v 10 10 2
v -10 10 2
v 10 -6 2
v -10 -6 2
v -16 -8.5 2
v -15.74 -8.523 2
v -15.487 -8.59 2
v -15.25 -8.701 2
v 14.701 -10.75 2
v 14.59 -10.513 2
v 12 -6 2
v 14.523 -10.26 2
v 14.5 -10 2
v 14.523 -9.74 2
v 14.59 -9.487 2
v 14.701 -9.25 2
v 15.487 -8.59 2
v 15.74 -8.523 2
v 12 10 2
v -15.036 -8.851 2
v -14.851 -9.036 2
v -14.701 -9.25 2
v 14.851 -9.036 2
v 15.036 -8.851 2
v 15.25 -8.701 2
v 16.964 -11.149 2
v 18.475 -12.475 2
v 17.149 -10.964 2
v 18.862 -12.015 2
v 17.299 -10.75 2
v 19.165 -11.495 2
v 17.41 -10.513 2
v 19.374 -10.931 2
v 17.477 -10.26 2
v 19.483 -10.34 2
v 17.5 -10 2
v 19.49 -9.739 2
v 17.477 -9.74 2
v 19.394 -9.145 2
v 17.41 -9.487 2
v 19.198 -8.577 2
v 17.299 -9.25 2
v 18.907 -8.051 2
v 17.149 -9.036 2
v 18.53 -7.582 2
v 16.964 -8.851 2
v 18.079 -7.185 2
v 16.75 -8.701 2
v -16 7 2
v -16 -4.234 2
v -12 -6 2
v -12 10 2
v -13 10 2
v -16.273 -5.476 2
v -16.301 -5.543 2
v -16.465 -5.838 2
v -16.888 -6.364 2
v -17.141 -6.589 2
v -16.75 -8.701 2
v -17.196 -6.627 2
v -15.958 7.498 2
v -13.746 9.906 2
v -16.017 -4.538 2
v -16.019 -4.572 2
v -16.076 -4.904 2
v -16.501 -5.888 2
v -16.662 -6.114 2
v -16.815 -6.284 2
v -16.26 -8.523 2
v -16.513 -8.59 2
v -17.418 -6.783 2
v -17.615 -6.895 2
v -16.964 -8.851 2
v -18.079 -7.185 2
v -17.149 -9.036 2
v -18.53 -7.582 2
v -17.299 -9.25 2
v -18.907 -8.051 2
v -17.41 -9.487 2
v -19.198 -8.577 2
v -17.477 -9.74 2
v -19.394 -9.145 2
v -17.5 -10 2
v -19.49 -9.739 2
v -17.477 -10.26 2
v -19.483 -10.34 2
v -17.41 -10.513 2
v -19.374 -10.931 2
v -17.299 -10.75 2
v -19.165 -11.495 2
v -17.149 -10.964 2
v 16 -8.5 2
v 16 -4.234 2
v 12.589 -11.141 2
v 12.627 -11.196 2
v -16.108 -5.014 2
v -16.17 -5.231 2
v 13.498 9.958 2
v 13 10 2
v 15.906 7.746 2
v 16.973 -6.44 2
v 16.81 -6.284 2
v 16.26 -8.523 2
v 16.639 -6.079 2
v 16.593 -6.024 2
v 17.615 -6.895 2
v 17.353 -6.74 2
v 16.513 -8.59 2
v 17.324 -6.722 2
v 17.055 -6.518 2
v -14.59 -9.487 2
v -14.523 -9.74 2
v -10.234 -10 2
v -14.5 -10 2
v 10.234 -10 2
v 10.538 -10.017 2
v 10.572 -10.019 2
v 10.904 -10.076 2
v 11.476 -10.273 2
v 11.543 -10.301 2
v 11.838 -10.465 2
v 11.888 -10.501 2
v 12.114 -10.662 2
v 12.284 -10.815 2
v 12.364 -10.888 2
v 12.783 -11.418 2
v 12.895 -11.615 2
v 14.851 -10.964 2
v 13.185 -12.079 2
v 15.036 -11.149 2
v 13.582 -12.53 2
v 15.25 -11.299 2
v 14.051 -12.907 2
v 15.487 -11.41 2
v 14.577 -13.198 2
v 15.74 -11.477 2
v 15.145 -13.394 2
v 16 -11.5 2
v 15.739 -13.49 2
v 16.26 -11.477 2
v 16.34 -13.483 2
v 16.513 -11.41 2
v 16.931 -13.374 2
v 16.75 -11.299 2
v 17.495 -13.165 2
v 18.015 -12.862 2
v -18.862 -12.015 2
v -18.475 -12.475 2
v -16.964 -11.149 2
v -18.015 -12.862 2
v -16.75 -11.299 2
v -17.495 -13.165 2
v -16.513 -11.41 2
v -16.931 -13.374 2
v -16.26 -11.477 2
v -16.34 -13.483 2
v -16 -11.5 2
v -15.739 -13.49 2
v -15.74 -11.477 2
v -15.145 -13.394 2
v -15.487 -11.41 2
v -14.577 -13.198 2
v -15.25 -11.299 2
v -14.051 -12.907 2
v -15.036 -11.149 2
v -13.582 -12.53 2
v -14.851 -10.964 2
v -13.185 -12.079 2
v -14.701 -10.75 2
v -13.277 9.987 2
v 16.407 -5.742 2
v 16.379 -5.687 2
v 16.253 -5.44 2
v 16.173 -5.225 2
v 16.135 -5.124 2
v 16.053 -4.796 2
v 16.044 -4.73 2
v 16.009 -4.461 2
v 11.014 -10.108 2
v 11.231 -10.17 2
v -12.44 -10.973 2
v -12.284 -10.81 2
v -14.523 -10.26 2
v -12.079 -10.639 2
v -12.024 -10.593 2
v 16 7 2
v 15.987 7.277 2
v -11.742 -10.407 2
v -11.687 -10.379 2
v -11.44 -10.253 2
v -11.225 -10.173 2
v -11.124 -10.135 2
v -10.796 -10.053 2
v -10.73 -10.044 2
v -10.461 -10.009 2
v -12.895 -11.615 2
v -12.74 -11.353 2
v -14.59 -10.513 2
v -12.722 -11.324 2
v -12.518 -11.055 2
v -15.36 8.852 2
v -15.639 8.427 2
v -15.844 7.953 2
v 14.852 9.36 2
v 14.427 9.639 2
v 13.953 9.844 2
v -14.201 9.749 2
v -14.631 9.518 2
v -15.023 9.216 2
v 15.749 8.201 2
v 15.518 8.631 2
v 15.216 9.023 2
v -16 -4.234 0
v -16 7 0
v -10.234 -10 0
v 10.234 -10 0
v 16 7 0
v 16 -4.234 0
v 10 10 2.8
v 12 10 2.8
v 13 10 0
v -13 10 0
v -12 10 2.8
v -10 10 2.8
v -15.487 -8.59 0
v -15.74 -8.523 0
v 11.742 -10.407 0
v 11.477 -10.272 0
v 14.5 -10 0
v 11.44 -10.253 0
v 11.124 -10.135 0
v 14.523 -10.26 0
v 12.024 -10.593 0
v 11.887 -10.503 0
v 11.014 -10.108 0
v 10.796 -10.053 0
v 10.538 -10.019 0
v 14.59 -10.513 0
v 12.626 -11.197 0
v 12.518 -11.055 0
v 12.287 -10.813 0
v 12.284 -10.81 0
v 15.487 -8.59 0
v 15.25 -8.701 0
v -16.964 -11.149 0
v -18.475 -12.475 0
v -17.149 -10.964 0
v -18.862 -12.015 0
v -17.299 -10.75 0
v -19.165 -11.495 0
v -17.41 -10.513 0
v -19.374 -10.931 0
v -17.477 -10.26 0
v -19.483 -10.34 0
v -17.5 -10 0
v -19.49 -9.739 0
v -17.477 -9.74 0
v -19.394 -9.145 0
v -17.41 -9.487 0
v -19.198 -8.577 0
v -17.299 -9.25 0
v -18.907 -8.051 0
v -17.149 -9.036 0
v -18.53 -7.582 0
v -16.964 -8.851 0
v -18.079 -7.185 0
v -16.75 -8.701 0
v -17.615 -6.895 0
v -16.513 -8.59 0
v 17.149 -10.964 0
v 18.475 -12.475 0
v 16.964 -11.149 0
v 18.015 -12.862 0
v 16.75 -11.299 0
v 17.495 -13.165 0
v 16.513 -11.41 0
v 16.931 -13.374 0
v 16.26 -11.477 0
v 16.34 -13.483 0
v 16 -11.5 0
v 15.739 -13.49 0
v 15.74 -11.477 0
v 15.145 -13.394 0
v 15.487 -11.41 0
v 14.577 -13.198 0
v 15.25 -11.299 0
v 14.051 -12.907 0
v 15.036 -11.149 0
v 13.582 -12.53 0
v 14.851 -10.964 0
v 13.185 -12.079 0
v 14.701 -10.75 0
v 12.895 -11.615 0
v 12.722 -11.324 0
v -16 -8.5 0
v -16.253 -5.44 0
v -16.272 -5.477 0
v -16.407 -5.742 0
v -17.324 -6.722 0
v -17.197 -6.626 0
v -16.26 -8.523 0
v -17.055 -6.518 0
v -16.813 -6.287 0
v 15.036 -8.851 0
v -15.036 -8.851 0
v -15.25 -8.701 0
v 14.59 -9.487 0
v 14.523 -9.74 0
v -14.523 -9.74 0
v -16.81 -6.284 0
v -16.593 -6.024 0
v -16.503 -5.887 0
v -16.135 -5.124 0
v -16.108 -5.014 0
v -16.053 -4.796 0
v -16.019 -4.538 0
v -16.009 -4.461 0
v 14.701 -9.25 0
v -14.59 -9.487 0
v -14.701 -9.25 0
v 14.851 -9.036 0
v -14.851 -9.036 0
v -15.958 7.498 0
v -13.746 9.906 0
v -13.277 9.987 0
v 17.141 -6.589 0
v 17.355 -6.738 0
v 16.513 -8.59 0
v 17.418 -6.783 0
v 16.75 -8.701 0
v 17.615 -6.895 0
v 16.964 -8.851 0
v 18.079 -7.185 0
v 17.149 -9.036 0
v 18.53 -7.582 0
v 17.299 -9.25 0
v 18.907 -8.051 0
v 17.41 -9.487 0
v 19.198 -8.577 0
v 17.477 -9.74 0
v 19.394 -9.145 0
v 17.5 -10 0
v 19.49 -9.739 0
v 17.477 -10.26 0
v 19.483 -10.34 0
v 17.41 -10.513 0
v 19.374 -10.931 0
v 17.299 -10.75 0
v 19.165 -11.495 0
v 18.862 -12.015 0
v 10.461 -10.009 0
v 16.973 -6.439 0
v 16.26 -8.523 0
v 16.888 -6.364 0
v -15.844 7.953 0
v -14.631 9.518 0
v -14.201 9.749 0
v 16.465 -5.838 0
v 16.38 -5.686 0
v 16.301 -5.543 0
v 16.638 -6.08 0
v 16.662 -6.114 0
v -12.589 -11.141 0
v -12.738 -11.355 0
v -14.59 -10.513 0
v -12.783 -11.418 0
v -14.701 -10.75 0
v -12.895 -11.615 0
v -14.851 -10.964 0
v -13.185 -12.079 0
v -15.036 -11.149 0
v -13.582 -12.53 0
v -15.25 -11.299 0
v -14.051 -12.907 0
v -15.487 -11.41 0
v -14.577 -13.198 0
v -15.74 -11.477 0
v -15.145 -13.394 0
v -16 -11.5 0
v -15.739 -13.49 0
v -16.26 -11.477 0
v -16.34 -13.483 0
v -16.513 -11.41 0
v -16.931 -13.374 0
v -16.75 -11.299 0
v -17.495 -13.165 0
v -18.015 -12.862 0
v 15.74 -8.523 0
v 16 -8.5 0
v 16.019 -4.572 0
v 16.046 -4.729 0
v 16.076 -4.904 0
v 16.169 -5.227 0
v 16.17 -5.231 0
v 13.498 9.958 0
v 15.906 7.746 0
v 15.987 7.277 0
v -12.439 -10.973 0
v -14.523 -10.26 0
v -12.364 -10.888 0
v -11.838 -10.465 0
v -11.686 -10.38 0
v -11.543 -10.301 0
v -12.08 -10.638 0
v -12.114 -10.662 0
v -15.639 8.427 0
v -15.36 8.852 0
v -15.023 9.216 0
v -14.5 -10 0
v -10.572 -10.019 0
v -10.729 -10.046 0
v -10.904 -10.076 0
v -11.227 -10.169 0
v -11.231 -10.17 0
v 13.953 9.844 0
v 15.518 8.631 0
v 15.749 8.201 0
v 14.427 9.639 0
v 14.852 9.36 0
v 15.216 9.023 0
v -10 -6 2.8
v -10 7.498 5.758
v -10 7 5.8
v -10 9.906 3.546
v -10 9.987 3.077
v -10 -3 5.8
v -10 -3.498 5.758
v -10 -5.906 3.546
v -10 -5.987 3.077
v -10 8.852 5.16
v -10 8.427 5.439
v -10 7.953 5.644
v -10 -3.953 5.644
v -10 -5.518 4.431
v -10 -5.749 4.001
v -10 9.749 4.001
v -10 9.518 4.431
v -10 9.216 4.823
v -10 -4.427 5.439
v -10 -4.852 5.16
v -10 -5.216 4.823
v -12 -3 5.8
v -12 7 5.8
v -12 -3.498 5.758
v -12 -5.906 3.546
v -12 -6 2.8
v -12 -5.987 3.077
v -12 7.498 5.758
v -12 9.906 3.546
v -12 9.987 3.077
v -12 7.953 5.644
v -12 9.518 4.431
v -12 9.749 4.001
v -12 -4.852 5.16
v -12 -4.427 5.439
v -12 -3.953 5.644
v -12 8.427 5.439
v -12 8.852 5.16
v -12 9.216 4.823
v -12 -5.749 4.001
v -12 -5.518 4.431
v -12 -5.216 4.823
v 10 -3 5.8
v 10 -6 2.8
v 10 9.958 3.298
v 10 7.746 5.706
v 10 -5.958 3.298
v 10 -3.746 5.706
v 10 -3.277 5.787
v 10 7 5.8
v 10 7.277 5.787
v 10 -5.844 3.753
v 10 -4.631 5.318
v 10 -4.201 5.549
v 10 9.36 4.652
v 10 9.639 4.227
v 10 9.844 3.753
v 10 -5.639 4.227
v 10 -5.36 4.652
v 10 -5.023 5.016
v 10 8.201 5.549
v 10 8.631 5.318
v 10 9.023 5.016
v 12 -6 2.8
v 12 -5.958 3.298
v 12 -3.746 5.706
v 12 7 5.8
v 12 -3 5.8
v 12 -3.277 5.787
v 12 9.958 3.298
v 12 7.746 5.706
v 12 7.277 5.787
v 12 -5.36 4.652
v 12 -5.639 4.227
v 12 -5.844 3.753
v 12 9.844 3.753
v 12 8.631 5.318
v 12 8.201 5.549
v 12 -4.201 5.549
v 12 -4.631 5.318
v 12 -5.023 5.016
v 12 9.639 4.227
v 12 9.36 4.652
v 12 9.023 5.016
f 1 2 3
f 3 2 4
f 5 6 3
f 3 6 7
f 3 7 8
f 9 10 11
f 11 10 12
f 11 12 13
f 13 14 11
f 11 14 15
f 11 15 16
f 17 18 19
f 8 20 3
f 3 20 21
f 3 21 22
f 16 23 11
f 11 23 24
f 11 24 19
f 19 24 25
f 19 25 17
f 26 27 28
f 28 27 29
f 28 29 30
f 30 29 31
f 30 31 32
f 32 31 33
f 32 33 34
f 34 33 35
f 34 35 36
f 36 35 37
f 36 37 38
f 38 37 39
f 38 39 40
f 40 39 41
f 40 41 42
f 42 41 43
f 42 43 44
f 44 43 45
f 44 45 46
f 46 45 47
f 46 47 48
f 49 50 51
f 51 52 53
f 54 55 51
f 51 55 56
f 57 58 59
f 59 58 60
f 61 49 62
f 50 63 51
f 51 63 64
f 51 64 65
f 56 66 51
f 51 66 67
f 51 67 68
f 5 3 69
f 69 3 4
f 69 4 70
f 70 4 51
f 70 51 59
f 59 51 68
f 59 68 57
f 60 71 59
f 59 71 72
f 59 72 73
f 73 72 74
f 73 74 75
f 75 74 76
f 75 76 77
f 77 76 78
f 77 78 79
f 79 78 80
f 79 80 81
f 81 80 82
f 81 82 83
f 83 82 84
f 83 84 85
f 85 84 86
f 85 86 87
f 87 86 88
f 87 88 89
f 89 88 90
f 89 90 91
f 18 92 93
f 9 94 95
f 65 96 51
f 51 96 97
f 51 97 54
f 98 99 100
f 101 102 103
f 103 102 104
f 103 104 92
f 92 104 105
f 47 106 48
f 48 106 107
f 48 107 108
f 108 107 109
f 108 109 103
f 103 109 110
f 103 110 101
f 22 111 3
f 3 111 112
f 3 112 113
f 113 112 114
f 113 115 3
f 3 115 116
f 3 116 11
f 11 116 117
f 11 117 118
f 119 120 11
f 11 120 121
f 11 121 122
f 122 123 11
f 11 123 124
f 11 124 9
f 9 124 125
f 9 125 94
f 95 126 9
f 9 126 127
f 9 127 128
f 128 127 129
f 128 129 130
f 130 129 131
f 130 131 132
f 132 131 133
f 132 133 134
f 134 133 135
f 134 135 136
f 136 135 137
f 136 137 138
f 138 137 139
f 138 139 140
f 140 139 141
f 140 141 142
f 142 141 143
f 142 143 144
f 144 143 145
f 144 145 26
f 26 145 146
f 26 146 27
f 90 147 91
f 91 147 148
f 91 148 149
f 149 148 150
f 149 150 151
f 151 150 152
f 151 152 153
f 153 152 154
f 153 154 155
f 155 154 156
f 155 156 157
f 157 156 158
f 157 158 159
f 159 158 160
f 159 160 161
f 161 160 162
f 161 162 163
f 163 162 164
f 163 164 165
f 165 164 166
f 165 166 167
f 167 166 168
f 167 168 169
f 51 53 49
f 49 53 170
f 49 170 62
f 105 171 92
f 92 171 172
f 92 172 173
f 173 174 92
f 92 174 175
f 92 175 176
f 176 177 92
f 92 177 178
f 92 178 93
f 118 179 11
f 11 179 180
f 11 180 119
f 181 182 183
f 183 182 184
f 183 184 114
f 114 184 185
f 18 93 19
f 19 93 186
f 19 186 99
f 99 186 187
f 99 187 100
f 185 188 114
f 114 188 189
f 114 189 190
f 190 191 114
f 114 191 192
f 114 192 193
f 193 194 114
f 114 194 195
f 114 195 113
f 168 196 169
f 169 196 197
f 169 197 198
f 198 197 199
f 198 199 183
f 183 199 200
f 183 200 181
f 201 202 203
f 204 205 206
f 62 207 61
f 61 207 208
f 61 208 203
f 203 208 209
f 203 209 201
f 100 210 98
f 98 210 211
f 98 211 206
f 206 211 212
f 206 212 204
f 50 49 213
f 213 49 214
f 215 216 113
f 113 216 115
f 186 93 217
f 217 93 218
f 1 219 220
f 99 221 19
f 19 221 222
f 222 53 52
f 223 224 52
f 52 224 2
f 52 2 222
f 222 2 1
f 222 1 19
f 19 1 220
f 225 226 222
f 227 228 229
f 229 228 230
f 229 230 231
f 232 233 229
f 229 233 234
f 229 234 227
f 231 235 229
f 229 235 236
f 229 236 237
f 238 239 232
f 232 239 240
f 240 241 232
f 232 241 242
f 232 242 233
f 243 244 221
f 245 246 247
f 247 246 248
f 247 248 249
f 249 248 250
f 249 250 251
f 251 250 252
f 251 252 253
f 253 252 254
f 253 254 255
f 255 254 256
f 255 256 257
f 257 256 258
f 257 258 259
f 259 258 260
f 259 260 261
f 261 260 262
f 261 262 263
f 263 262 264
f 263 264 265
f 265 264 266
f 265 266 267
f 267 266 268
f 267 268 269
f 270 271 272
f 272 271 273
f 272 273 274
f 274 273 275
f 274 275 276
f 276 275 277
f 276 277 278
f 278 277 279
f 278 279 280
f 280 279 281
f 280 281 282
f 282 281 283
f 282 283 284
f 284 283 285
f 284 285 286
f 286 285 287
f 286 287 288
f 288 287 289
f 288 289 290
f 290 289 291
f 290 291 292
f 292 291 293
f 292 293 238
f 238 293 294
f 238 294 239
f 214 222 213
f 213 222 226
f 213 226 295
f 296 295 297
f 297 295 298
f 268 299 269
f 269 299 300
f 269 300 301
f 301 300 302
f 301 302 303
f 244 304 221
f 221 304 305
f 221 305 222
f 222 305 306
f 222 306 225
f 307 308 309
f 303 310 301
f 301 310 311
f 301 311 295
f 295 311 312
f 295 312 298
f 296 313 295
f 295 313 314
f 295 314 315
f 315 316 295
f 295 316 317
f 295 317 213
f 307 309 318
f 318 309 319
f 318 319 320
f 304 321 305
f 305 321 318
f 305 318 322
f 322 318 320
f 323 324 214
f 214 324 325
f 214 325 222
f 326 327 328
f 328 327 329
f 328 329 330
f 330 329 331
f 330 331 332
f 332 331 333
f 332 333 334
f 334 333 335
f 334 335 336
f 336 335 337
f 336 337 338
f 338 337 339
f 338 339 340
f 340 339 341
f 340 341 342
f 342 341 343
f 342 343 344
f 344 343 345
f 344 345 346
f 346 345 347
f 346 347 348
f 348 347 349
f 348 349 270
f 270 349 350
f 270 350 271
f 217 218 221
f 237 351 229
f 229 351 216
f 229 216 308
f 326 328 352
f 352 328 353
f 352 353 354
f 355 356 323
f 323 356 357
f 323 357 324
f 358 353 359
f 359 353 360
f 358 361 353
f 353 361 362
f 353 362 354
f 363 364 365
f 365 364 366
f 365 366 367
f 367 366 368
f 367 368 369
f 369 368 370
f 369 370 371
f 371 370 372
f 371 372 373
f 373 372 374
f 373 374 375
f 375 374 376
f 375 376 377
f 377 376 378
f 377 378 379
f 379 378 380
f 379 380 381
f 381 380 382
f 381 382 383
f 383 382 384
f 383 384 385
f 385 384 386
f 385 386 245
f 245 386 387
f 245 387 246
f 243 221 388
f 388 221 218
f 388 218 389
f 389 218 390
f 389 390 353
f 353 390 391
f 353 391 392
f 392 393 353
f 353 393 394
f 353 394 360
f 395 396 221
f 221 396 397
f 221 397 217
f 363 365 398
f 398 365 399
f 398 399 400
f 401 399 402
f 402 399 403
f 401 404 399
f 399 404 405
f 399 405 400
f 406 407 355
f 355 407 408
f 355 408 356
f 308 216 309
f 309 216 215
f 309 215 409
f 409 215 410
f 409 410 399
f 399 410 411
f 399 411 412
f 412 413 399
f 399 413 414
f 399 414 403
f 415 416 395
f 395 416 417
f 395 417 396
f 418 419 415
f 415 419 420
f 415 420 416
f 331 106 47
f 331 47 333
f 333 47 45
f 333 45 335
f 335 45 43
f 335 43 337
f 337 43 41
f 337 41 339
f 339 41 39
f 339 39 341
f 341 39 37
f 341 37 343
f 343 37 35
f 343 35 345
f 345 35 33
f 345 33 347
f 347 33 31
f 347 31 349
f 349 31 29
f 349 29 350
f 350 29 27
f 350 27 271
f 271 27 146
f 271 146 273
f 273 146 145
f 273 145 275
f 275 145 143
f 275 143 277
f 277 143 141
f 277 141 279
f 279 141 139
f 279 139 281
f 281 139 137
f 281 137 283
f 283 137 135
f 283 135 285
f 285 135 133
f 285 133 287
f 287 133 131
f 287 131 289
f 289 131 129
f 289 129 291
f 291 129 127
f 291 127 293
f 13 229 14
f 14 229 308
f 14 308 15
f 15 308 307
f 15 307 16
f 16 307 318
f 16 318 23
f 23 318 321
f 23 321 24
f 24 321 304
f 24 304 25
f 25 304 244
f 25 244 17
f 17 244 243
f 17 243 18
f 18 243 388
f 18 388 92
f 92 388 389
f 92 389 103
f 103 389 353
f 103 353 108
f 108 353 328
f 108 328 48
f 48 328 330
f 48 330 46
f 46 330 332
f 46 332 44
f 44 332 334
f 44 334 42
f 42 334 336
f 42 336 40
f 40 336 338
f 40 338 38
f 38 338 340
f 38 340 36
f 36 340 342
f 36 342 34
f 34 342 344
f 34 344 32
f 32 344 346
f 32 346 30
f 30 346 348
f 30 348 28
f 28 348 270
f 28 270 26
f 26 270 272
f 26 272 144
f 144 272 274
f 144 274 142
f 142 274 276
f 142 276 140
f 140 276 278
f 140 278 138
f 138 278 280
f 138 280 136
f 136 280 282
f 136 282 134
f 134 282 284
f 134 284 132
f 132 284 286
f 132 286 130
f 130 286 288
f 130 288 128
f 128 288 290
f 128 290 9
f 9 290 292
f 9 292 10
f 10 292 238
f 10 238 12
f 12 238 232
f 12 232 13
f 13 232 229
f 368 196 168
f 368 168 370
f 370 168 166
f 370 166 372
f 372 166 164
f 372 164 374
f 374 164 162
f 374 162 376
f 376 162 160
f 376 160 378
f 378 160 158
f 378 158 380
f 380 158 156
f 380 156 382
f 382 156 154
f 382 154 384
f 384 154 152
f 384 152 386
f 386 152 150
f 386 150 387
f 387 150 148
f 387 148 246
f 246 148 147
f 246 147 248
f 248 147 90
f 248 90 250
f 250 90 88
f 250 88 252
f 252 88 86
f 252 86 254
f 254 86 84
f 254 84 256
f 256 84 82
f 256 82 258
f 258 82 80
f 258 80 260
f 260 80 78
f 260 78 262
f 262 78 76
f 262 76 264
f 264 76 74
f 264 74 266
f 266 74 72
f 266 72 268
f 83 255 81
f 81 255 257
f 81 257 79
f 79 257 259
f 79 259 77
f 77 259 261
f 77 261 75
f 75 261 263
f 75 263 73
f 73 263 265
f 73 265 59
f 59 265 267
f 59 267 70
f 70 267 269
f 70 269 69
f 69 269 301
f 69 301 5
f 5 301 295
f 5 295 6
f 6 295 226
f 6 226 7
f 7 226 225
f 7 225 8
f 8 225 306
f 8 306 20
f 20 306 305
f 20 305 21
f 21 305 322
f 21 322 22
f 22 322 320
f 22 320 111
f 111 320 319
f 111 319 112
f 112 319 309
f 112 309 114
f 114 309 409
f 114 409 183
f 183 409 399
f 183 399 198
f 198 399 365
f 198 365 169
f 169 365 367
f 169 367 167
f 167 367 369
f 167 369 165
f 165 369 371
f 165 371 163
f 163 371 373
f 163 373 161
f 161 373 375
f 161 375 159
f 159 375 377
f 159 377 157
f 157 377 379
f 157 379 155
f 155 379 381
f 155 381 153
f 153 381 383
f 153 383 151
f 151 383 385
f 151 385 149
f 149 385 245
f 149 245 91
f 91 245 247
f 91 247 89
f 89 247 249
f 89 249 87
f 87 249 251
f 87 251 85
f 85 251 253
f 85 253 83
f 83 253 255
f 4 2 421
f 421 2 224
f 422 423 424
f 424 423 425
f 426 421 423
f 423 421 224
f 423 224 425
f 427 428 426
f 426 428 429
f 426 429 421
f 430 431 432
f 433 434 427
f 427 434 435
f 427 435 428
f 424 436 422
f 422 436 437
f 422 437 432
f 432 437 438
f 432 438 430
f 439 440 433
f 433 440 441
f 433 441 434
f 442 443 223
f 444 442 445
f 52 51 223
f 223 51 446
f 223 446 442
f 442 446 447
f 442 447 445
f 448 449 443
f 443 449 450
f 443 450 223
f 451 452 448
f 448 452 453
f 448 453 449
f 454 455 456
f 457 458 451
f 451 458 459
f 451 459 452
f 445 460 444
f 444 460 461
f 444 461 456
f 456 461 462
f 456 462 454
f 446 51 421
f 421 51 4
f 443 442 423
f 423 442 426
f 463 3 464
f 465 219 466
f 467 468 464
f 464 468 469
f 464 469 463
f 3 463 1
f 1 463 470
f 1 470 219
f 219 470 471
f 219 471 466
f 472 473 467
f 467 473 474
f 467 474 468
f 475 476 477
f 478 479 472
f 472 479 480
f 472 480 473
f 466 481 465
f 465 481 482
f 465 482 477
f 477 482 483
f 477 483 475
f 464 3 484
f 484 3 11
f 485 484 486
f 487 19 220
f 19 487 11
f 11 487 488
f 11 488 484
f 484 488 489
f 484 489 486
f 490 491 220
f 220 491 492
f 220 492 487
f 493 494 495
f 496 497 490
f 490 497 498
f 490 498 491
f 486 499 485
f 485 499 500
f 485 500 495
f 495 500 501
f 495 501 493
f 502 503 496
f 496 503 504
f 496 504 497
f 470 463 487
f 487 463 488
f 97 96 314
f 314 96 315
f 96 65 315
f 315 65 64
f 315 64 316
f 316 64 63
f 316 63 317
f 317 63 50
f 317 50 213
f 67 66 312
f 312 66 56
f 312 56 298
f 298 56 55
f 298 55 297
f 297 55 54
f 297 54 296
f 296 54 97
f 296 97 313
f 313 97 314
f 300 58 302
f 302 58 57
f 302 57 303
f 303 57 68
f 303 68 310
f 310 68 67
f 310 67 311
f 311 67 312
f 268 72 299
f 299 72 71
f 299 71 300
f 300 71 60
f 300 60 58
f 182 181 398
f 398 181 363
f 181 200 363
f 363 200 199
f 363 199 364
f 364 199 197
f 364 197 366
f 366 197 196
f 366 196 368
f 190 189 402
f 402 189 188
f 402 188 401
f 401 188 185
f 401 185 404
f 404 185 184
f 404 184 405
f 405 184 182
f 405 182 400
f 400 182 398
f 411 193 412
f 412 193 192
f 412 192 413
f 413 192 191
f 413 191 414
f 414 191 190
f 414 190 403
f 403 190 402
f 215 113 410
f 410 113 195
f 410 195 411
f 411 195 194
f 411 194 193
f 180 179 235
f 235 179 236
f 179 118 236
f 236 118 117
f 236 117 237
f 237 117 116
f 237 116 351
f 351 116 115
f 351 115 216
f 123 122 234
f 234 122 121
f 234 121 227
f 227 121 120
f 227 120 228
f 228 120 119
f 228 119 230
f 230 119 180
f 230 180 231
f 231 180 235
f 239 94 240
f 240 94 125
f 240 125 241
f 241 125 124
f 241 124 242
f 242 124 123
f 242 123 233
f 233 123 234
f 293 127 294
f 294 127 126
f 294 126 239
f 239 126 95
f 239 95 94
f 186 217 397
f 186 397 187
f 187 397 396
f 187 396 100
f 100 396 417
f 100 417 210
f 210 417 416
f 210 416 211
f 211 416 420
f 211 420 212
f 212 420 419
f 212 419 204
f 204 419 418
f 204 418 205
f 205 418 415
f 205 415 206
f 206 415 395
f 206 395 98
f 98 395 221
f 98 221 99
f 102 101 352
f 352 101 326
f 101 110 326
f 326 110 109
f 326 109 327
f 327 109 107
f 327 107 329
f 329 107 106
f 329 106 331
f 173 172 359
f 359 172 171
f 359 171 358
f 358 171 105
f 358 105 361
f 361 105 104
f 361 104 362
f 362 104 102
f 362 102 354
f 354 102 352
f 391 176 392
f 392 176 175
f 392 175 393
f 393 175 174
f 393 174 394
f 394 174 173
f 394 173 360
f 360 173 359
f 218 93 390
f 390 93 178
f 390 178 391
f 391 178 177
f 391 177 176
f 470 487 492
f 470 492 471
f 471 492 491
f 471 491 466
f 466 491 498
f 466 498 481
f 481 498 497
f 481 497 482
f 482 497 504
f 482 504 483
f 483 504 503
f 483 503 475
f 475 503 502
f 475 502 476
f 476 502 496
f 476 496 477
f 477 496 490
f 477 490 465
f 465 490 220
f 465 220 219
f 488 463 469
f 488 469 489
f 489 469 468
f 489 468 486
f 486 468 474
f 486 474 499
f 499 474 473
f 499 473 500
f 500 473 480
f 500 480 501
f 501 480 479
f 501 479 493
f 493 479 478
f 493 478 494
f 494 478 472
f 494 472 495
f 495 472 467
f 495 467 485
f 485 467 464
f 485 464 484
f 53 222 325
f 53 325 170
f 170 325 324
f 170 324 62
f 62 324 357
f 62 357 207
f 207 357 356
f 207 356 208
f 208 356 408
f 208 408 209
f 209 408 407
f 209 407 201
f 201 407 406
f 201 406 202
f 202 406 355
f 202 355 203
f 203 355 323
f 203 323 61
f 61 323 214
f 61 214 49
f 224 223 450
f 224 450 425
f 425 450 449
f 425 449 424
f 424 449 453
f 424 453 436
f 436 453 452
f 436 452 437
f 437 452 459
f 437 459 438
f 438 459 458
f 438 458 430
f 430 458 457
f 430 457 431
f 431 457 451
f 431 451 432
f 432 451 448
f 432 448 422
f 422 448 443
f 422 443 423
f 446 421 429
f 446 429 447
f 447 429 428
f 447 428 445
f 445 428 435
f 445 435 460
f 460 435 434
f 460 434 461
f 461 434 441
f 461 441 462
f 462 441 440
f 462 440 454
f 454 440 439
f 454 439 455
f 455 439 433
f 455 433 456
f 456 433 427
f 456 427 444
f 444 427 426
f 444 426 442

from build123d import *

# Parameters (mm, degrees)
SKETCH_1_W            = 32
SKETCH_1_H            = 20
EXTRUDE_1_DEPTH       = 2
SKETCH_2_R            = 3.5
EXTRUDE_2_DEPTH       = 2
HOLE_WIZARD_3_0_3_1_D = 3
SKETCH_5_W            = 2
SKETCH_5_H            = 16
EXTRUDE_3_DEPTH       = 3.8
FILLET_1_DEPTH        = 2
FILLET_START          = -1
FILLET_1_2_DEPTH      = 6.8
FILLET_START_2        = -12
FILLET_1_3_DEPTH      = 24


with BuildPart() as part:
    # 草圖1 → 填料-伸長1 (new body)
    with BuildSketch(Plane.XY):
        Rectangle(SKETCH_1_W, SKETCH_1_H)
    extrude(amount=EXTRUDE_1_DEPTH)

    # 草圖2 → 填料-伸長2 (add)
    with BuildSketch(Plane(origin=(0, 0, 0), x_dir=(-1, 0, 0), z_dir=(0, 0, -1))):
        with Locations((-16, -10)):
            Circle(SKETCH_2_R)
    extrude_2 = extrude(amount=-EXTRUDE_2_DEPTH)

    # Ø3.0 (3) 直徑孔1 (through all)
    with Locations(Plane(origin=(0, 0, 0), x_dir=(-1, 0, 0), z_dir=(0, 0, -1))):
        with Locations((-16, -10)):
            hole_wizard_3_0_3_1 = Hole(HOLE_WIZARD_3_0_3_1_D / 2)

    # 鏡射1: 填料-伸長2, Ø3.0 (3) 直徑孔1 across plane
    add(extrude_2.mirror(Plane(origin=(0, 0, 0), x_dir=(0, 0, 1), z_dir=(1, 0, 0))))
    add(hole_wizard_3_0_3_1.mirror(Plane(origin=(0, 0, 0), x_dir=(0, 0, 1), z_dir=(1, 0, 0))), mode=Mode.SUBTRACT)

    # 草圖5 → 填料-伸長3 (add)
    with BuildSketch(Plane.XY.offset(2)):
        with Locations((-11, 2)):
            Rectangle(SKETCH_5_W, SKETCH_5_H)
    extrude_3 = extrude(amount=EXTRUDE_3_DEPTH)

    # 鏡射2: 填料-伸長3 across plane
    add(extrude_3.mirror(Plane(origin=(0, 0, 0), x_dir=(0, 0, 1), z_dir=(1, 0, 0))))

    # 圓角1: read off the stored shape, not the designer's step
    # 圓角1 outline → 圓角1 (add)
    with BuildSketch(Plane.XY):
        with BuildLine():
            add(Edge.make_bspline(
                [(-17.615384615, -6.895079301), (-16, -6.054649639), (-16, -4.233718703)],
                knots=[0, 0, 0, 1, 1, 1], degree=2, weights=[1, 0.854850414, 1]))
            ThreePointArc((-17.615384615, -6.895079301), (-16.831497912, -6.600204238), (-16, -6.5))
            Line((-16, -6.5), (-16, -4.233718703))
        make_face()
        with BuildLine():
            ThreePointArc((-12.5, -10), (-12.600204238, -10.831497912), (-12.895079301, -11.615384615))
            add(Edge.make_bspline(
                [(-10.233718703, -10), (-12.054649639, -10), (-12.895079301, -11.615384615)],
                knots=[0, 0, 0, 1, 1, 1], degree=2, weights=[1, 0.854850414, 1]))
            Line((-10.233718703, -10), (-12.5, -10))
        make_face()
        with BuildLine():
            Line((12.5, -10), (10.233718703, -10))
            add(Edge.make_bspline(
                [(12.895079301, -11.615384615), (12.054649639, -10), (10.233718703, -10)],
                knots=[0, 0, 0, 1, 1, 1], degree=2, weights=[1, 0.854850414, 1]))
            ThreePointArc((12.895079301, -11.615384615), (12.600204238, -10.831497912), (12.5, -10))
        make_face()
        with BuildLine():
            ThreePointArc((16, -6.5), (16.831497912, -6.600204238), (17.615384615, -6.895079301))
            add(Edge.make_bspline(
                [(16, -4.233718703), (16, -6.054649639), (17.615384615, -6.895079301)],
                knots=[0, 0, 0, 1, 1, 1], degree=2, weights=[1, 0.854850414, 1]))
            Line((16, -4.233718703), (16, -6.5))
        make_face()
    extrude(amount=FILLET_1_DEPTH)

    # Fillet 1 2 outline → Fillet 1 2 (cut)
    with BuildSketch(Plane.XY.offset(FILLET_START)):
        with BuildLine():
            Line((-16, 10), (-16, 7))
            add(Edge.make_bspline(
                [(-16, 7), (-16, 10), (-13, 10)],
                knots=[0, 0, 0, 1, 1, 1], degree=2, weights=[1, 0.707106781, 1]))
            Line((-13, 10), (-16, 10))
        make_face()
        with BuildLine():
            add(Edge.make_bspline(
                [(13, 10), (16, 10), (16, 7)],
                knots=[0, 0, 0, 1, 1, 1], degree=2, weights=[1, 0.707106781, 1]))
            Line((16, 7), (16, 10))
            Line((16, 10), (13, 10))
        make_face()
    extrude(amount=FILLET_1_2_DEPTH, mode=Mode.SUBTRACT)

    # Fillet 1 3 outline → Fillet 1 3 (cut)
    with BuildSketch(Plane.YZ.offset(FILLET_START_2)):
        with BuildLine():
            add(Edge.make_bspline(
                [(10, 2.8), (10, 5.8), (7, 5.8)],
                knots=[0, 0, 0, 1, 1, 1], degree=2, weights=[1, 0.707106781, 1]))
            Line((10, 2.8), (10, 5.8))
            Line((10, 5.8), (7, 5.8))
        make_face()
        with BuildLine():
            add(Edge.make_bspline(
                [(-6, 2.8), (-6, 5.8), (-3, 5.8)],
                knots=[0, 0, 0, 1, 1, 1], degree=2, weights=[1, 0.707106781, 1]))
            Line((-3, 5.8), (-6, 5.8))
            Line((-6, 5.8), (-6, 2.8))
        make_face()
    extrude(amount=FILLET_1_3_DEPTH, mode=Mode.SUBTRACT)


solid = part.part
